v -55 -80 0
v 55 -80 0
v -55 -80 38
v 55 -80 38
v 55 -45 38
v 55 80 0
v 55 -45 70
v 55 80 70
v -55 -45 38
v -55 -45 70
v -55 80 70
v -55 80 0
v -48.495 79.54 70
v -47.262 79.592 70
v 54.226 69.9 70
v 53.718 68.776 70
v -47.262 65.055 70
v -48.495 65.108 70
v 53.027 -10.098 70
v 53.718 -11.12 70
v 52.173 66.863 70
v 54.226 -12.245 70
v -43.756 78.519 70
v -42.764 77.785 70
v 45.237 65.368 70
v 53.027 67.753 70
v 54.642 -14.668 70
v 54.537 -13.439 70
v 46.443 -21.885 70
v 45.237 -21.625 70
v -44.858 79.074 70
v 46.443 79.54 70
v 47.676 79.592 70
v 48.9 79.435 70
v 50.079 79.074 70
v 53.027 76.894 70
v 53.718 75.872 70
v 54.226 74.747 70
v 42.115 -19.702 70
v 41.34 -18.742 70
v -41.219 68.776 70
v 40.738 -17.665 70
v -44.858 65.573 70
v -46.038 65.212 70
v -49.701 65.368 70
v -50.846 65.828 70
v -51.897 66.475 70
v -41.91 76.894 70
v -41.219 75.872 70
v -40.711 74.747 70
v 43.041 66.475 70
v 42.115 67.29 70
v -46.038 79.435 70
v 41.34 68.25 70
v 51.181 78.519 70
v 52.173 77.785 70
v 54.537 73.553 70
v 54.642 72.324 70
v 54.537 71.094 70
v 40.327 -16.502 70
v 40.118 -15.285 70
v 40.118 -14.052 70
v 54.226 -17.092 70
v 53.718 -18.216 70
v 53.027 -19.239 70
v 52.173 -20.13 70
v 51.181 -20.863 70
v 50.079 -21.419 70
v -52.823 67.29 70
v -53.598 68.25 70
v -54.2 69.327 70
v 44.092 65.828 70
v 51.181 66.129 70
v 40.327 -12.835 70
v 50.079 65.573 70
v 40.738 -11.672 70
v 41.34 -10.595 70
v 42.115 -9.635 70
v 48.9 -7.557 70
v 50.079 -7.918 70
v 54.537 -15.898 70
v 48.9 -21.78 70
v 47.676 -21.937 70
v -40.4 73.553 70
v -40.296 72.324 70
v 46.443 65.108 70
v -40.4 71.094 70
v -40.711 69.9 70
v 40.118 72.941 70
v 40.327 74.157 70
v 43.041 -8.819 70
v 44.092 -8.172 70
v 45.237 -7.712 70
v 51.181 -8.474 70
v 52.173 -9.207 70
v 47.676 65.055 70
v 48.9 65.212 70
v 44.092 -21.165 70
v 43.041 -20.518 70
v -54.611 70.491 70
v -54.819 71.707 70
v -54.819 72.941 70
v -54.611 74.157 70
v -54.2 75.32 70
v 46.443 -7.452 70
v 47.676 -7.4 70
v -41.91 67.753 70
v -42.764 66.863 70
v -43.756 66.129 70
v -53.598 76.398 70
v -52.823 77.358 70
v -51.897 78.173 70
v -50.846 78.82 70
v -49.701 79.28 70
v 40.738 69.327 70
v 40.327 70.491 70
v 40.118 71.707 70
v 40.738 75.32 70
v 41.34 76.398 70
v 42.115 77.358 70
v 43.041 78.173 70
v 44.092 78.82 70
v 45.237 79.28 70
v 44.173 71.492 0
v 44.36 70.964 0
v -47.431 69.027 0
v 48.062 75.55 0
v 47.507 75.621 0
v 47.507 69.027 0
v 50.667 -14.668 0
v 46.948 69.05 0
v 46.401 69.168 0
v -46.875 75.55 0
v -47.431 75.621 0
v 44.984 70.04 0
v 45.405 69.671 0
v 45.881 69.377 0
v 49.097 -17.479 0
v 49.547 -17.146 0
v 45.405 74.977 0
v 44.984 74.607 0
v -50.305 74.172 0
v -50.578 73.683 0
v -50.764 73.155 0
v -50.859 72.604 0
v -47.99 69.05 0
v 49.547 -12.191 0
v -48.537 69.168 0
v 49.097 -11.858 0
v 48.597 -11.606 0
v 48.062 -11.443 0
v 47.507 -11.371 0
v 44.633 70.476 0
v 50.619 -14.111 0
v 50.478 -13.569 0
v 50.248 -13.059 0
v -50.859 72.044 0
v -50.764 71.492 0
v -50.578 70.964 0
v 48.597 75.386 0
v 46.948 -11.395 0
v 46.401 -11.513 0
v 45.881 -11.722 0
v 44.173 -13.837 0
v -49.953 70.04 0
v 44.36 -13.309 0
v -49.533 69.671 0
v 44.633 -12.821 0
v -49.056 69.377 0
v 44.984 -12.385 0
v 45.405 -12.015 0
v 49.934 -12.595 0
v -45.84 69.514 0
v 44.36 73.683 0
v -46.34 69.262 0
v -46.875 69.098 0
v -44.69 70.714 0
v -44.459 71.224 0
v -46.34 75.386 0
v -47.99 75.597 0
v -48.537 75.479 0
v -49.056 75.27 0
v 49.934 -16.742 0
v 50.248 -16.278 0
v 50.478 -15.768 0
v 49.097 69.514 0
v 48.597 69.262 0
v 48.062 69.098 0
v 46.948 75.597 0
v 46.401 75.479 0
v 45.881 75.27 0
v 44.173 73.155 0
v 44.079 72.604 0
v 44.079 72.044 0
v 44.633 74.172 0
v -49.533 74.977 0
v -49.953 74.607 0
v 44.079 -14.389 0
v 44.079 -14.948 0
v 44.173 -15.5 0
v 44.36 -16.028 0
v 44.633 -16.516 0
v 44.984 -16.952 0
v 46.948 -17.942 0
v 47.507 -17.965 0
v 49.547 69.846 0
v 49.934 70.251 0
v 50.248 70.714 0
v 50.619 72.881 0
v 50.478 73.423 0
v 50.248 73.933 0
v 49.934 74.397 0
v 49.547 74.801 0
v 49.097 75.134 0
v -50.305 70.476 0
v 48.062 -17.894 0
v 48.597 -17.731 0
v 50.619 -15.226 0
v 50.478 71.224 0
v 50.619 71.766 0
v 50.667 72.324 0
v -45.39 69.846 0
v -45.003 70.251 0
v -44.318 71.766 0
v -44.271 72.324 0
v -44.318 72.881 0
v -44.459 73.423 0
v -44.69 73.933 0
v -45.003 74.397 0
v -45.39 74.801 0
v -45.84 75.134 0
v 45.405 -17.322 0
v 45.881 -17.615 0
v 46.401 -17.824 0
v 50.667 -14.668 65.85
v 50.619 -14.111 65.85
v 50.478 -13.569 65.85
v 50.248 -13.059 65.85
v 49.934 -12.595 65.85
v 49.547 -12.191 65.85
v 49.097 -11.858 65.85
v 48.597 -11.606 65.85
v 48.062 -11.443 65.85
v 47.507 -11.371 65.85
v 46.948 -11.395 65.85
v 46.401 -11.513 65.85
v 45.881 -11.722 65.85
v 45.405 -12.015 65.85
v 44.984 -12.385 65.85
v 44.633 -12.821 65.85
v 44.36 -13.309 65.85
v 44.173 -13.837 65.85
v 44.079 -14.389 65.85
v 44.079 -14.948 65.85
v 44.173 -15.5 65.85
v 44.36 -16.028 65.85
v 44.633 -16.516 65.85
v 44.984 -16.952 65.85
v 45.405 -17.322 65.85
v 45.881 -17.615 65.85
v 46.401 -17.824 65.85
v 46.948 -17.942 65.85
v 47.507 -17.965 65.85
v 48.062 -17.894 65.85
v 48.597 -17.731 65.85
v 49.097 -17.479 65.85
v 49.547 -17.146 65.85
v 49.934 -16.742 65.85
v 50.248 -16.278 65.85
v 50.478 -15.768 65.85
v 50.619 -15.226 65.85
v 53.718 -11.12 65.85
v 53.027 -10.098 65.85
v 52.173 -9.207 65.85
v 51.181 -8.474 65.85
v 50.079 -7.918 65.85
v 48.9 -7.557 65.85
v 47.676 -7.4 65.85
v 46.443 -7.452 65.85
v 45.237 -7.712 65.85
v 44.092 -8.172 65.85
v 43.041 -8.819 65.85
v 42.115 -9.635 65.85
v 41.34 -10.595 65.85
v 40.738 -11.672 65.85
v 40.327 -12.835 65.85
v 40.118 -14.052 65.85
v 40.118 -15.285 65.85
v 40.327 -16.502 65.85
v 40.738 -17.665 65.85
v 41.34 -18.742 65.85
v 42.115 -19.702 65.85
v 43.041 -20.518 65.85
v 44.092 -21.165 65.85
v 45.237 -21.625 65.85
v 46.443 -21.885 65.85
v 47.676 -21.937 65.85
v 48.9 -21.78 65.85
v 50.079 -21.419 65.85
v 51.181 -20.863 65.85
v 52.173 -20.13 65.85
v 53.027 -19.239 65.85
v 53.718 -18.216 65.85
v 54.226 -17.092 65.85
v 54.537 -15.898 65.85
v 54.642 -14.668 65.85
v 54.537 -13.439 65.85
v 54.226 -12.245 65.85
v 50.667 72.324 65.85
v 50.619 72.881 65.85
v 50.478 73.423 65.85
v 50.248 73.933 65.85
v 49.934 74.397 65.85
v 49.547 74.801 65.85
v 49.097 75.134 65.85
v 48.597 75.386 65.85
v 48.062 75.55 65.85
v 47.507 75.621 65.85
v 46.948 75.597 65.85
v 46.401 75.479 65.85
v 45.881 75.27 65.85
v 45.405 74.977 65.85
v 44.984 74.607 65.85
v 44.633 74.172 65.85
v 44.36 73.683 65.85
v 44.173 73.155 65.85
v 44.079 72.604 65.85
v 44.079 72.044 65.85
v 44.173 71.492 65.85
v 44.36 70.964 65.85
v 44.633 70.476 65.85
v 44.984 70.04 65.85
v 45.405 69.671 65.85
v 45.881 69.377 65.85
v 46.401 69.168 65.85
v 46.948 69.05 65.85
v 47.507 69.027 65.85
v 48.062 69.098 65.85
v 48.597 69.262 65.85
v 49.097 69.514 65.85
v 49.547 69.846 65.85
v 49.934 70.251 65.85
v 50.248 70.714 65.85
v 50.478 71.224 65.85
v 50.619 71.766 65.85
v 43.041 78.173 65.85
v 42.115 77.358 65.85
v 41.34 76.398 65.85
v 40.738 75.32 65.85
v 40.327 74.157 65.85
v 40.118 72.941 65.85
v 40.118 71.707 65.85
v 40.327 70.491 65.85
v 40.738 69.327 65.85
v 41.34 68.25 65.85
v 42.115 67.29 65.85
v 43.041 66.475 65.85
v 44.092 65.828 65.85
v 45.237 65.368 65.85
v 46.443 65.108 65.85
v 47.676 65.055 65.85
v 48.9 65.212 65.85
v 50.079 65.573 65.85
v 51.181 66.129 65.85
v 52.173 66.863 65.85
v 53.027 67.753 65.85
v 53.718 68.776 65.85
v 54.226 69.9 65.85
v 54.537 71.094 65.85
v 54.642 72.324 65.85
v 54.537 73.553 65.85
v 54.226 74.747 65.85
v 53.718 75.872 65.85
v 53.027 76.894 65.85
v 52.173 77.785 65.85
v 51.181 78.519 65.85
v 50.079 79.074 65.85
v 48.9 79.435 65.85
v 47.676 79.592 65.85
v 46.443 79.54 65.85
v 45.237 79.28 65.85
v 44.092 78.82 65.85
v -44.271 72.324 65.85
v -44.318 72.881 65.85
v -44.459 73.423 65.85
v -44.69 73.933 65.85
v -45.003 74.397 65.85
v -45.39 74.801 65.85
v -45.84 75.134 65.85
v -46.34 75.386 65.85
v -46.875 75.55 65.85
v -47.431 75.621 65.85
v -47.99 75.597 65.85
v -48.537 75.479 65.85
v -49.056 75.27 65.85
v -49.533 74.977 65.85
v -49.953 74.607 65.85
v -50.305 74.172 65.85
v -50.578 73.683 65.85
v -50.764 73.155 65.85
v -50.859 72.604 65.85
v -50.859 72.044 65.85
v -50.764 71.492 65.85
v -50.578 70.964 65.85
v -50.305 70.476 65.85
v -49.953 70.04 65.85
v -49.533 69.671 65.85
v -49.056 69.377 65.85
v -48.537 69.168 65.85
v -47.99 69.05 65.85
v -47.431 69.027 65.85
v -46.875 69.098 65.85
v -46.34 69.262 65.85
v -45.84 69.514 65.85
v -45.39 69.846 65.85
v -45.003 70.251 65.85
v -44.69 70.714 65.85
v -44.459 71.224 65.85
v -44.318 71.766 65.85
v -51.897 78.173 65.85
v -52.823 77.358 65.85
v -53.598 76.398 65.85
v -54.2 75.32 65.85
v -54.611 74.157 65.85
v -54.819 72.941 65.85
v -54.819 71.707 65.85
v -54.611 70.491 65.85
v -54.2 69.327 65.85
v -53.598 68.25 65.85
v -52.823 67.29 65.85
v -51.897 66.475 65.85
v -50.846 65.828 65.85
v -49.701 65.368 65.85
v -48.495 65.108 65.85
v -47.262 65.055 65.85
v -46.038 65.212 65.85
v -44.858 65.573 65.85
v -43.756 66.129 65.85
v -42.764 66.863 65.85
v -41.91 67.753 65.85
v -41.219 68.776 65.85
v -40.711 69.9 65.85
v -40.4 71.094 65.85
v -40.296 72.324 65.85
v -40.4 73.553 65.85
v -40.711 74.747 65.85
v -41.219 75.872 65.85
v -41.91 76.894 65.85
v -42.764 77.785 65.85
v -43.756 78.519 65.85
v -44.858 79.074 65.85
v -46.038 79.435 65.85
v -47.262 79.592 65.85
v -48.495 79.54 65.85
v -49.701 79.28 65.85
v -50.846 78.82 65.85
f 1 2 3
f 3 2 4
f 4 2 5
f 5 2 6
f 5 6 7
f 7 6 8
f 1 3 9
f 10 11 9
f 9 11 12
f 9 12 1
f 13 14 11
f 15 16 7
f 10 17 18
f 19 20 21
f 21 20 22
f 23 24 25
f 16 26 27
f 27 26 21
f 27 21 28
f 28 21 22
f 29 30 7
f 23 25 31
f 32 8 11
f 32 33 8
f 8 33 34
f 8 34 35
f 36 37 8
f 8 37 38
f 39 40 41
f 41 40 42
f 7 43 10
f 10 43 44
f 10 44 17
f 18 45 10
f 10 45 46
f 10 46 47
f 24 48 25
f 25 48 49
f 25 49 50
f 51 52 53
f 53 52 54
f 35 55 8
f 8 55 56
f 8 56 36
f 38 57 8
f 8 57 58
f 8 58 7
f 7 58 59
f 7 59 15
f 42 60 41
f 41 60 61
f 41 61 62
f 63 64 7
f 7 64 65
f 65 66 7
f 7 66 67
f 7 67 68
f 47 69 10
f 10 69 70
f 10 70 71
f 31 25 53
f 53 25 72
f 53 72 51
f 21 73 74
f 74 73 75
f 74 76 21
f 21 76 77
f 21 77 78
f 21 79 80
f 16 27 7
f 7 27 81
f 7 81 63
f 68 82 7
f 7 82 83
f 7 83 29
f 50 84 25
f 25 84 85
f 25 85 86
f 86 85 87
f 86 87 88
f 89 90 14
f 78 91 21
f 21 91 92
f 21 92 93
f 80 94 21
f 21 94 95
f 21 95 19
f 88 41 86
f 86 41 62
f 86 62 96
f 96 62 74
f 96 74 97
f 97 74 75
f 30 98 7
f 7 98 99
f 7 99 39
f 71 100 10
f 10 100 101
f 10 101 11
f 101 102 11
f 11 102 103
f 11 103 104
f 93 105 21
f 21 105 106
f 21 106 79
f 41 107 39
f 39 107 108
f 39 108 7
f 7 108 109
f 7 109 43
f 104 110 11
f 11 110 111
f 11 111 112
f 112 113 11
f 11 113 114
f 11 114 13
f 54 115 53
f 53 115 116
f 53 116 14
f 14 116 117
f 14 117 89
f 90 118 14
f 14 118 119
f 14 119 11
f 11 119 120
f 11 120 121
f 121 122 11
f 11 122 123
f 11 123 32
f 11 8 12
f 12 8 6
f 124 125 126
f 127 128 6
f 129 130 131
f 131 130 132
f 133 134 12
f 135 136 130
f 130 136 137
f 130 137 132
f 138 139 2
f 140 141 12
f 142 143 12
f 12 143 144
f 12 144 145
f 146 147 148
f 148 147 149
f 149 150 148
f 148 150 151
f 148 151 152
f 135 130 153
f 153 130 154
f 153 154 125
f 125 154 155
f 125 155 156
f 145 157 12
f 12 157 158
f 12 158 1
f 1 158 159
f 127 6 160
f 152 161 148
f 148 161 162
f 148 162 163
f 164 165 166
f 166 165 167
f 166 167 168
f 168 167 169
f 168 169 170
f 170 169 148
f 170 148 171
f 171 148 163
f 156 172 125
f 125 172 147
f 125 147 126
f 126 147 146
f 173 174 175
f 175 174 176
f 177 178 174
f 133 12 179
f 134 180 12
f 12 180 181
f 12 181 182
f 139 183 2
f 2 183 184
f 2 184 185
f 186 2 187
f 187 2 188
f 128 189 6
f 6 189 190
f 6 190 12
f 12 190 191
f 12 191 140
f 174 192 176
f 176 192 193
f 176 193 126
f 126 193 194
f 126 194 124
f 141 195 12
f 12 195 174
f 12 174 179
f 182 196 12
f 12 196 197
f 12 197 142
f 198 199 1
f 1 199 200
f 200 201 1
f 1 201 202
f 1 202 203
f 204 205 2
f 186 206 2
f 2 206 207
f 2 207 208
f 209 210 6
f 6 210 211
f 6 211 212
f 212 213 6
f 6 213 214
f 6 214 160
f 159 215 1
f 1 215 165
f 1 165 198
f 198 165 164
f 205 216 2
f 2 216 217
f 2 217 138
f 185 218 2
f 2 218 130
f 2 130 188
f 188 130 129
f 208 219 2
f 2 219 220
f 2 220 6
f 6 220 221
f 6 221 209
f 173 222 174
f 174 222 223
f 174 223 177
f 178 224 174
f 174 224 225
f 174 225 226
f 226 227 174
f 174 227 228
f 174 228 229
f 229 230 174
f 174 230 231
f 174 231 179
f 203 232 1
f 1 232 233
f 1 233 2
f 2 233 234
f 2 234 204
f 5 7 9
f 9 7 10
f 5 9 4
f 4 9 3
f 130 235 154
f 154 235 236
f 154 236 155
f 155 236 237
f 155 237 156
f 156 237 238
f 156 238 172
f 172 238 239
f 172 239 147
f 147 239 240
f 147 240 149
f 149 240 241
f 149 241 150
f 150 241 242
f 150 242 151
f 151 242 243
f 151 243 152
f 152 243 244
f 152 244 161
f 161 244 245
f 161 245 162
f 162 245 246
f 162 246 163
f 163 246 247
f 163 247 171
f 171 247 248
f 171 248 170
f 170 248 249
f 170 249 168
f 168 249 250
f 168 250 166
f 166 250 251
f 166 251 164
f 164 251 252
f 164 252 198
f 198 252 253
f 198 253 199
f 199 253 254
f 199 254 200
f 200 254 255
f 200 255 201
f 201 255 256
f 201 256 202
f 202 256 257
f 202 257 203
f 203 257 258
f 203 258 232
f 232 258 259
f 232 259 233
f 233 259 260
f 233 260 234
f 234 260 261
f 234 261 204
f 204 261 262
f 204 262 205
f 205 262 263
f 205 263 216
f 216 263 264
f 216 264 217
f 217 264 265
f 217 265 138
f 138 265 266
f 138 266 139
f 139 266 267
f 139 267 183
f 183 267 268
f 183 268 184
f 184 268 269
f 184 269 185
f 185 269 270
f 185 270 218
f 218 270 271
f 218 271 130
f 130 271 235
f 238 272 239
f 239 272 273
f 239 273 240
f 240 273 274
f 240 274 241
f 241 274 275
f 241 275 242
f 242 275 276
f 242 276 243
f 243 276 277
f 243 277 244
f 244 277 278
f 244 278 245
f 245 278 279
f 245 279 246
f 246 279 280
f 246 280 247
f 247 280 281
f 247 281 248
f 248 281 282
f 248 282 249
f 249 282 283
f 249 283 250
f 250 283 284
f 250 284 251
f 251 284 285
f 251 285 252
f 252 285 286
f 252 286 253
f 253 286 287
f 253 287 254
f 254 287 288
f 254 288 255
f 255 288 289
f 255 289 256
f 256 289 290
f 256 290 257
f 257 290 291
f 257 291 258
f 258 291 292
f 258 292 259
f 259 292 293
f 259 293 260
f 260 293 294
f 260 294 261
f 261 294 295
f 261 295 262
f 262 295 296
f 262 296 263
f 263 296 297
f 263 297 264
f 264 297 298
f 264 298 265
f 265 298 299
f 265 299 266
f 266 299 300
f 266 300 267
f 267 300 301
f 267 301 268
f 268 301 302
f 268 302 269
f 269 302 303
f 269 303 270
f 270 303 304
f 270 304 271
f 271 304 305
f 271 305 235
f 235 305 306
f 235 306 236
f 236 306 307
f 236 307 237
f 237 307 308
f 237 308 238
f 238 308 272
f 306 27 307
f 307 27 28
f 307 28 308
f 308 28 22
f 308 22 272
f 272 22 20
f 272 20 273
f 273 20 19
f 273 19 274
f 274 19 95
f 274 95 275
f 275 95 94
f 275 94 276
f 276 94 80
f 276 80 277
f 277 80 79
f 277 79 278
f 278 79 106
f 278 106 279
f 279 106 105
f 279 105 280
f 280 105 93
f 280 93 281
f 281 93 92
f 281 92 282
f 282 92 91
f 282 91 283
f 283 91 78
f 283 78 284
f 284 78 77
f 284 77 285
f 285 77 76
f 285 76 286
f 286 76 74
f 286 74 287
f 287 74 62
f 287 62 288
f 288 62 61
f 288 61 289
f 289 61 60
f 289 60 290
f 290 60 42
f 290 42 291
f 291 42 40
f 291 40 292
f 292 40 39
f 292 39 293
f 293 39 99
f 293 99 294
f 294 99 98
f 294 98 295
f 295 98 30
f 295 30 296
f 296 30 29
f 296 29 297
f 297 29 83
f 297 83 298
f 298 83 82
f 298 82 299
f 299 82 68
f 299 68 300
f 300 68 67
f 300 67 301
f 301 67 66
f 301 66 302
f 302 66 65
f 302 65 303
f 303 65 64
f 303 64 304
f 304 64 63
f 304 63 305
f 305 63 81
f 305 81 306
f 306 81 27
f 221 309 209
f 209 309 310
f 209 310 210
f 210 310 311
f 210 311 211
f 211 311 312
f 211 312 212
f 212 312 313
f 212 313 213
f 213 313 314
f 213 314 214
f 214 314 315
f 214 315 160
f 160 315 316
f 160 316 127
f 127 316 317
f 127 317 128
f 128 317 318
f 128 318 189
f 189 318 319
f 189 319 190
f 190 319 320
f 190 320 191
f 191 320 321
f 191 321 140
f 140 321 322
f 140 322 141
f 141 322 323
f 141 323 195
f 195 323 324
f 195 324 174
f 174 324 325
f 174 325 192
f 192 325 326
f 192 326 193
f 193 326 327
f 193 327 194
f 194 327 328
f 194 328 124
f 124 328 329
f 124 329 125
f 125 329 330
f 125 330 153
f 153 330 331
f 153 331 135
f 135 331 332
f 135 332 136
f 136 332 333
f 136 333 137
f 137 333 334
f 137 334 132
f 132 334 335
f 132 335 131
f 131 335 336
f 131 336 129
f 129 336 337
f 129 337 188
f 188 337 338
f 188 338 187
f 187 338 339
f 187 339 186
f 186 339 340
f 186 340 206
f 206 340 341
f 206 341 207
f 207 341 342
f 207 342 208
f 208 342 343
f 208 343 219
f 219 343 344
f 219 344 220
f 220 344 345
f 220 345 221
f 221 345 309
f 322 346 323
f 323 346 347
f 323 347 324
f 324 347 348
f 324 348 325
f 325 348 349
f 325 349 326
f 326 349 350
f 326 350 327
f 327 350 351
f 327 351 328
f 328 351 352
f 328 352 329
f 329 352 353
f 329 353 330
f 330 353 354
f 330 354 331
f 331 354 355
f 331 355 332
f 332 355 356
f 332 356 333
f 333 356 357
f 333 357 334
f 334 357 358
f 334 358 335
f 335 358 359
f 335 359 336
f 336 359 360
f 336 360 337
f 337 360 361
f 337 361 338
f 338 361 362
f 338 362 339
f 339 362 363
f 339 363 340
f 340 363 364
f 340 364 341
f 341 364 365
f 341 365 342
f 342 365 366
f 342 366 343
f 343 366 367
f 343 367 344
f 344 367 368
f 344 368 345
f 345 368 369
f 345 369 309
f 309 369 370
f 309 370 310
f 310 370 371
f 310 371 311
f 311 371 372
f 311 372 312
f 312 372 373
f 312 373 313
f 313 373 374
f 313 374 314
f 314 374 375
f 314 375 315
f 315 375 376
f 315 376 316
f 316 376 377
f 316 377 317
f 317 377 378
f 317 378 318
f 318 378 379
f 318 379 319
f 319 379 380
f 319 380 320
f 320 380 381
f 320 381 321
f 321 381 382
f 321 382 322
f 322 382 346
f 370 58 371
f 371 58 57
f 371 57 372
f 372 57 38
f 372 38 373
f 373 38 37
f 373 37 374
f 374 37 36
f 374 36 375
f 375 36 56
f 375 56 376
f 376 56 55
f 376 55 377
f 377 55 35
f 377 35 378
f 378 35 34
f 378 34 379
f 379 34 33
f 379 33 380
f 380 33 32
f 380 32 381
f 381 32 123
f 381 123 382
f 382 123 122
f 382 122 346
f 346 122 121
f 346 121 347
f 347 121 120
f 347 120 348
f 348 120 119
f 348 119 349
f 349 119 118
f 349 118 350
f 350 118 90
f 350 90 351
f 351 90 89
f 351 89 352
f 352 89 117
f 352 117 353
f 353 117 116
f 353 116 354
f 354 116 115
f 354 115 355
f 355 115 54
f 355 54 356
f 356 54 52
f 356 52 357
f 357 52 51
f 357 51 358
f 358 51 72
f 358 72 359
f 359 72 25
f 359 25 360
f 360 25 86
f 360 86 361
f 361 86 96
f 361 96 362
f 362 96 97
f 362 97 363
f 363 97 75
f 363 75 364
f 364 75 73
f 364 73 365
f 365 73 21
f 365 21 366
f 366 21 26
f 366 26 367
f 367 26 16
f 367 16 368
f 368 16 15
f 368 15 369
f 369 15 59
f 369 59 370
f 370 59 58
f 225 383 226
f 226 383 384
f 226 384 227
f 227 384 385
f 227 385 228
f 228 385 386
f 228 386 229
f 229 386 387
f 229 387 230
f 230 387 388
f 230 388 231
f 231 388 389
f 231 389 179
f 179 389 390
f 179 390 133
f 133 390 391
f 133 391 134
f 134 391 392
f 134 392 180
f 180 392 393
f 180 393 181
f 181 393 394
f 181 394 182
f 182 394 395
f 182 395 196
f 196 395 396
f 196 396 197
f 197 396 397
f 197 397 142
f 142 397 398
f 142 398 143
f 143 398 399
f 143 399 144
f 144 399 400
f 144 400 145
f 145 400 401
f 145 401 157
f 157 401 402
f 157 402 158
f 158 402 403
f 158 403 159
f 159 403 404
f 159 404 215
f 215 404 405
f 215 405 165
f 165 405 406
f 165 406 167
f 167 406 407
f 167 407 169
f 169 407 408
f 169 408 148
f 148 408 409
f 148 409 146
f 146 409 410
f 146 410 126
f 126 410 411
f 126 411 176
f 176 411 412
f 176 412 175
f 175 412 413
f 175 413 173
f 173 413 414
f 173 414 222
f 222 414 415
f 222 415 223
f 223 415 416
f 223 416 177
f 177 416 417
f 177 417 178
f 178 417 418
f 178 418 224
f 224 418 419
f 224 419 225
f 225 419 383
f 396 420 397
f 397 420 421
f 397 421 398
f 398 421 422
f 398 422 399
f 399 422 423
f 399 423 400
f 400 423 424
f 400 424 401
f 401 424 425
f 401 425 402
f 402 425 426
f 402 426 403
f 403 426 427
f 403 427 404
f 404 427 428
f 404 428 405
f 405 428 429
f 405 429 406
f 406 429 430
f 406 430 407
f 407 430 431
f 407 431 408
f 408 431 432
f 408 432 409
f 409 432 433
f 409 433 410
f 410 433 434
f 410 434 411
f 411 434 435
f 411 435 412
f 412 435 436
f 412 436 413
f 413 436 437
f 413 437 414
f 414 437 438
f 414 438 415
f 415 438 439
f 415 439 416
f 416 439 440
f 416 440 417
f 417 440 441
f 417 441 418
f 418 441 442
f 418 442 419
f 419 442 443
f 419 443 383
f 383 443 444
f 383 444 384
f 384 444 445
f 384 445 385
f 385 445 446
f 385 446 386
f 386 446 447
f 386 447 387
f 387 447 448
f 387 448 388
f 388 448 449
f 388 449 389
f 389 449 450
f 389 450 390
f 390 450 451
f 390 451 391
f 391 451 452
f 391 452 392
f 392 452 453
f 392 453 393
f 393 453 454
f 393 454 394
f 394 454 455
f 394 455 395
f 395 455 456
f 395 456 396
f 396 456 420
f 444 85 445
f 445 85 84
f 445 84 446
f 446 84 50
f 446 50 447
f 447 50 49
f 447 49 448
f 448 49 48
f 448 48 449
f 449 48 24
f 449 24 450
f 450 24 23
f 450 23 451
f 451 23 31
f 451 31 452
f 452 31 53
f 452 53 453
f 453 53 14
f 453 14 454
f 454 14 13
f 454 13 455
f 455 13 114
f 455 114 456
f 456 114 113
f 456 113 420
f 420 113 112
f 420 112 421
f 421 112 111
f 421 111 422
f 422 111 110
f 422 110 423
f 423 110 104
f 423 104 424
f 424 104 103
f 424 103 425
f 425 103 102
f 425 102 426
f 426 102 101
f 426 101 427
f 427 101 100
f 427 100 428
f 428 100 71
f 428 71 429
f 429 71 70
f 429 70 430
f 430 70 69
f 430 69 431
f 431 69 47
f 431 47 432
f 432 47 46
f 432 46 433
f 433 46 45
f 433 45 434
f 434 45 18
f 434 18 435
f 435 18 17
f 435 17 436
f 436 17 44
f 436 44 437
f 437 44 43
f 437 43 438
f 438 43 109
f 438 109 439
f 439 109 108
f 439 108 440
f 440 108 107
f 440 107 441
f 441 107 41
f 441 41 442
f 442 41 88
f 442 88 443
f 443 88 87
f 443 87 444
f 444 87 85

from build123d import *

# Parameters (mm, degrees)
SKETCH_1_W                   = 110
SKETCH_1_H                   = 160
EXTRUDE_1_DEPTH              = 70
SKETCH_2_W                   = 110
SKETCH_2_H                   = 20
CUT_EXTRUDE_1_DEPTH          = 35
SKETCH_9_W                   = 110
SKETCH_9_H                   = 12
CUT_EXTRUDE_2_DEPTH          = 35
HOLE_WIZARD_M6_1_D           = 6.6
HOLE_WIZARD_M6_1_CBORE_D     = 14.55
HOLE_WIZARD_M6_1_CBORE_DEPTH = 4.15


with BuildPart() as part:
    # 草图1 → 凸台-拉伸1 (new body)
    with BuildSketch(Plane.XY):
        Rectangle(SKETCH_1_W, SKETCH_1_H)
    extrude(amount=EXTRUDE_1_DEPTH)

    # 草图2 → 切除-拉伸1 (cut)
    with BuildSketch(Plane.XZ.offset(80)):
        with Locations((0, 60)):
            Rectangle(SKETCH_2_W, SKETCH_2_H)
    extrude(amount=-CUT_EXTRUDE_1_DEPTH, mode=Mode.SUBTRACT)

    # 草图9 → 切除-拉伸2 (cut)
    with BuildSketch(Plane.XZ.offset(80)):
        with Locations((0, 44)):
            Rectangle(SKETCH_9_W, SKETCH_9_H)
    extrude(amount=-CUT_EXTRUDE_2_DEPTH, mode=Mode.SUBTRACT)

    # M6 六角头螺钉的柱形沉头孔1 (through all)
    with Locations(Plane.XY.offset(70)):
        with Locations((-47.570659981, 72.32370147), (47.366931244, 72.32370147), (47.366931244, -14.668469031)):
            CounterBoreHole(HOLE_WIZARD_M6_1_D / 2, HOLE_WIZARD_M6_1_CBORE_D / 2, HOLE_WIZARD_M6_1_CBORE_DEPTH)


solid = part.part
